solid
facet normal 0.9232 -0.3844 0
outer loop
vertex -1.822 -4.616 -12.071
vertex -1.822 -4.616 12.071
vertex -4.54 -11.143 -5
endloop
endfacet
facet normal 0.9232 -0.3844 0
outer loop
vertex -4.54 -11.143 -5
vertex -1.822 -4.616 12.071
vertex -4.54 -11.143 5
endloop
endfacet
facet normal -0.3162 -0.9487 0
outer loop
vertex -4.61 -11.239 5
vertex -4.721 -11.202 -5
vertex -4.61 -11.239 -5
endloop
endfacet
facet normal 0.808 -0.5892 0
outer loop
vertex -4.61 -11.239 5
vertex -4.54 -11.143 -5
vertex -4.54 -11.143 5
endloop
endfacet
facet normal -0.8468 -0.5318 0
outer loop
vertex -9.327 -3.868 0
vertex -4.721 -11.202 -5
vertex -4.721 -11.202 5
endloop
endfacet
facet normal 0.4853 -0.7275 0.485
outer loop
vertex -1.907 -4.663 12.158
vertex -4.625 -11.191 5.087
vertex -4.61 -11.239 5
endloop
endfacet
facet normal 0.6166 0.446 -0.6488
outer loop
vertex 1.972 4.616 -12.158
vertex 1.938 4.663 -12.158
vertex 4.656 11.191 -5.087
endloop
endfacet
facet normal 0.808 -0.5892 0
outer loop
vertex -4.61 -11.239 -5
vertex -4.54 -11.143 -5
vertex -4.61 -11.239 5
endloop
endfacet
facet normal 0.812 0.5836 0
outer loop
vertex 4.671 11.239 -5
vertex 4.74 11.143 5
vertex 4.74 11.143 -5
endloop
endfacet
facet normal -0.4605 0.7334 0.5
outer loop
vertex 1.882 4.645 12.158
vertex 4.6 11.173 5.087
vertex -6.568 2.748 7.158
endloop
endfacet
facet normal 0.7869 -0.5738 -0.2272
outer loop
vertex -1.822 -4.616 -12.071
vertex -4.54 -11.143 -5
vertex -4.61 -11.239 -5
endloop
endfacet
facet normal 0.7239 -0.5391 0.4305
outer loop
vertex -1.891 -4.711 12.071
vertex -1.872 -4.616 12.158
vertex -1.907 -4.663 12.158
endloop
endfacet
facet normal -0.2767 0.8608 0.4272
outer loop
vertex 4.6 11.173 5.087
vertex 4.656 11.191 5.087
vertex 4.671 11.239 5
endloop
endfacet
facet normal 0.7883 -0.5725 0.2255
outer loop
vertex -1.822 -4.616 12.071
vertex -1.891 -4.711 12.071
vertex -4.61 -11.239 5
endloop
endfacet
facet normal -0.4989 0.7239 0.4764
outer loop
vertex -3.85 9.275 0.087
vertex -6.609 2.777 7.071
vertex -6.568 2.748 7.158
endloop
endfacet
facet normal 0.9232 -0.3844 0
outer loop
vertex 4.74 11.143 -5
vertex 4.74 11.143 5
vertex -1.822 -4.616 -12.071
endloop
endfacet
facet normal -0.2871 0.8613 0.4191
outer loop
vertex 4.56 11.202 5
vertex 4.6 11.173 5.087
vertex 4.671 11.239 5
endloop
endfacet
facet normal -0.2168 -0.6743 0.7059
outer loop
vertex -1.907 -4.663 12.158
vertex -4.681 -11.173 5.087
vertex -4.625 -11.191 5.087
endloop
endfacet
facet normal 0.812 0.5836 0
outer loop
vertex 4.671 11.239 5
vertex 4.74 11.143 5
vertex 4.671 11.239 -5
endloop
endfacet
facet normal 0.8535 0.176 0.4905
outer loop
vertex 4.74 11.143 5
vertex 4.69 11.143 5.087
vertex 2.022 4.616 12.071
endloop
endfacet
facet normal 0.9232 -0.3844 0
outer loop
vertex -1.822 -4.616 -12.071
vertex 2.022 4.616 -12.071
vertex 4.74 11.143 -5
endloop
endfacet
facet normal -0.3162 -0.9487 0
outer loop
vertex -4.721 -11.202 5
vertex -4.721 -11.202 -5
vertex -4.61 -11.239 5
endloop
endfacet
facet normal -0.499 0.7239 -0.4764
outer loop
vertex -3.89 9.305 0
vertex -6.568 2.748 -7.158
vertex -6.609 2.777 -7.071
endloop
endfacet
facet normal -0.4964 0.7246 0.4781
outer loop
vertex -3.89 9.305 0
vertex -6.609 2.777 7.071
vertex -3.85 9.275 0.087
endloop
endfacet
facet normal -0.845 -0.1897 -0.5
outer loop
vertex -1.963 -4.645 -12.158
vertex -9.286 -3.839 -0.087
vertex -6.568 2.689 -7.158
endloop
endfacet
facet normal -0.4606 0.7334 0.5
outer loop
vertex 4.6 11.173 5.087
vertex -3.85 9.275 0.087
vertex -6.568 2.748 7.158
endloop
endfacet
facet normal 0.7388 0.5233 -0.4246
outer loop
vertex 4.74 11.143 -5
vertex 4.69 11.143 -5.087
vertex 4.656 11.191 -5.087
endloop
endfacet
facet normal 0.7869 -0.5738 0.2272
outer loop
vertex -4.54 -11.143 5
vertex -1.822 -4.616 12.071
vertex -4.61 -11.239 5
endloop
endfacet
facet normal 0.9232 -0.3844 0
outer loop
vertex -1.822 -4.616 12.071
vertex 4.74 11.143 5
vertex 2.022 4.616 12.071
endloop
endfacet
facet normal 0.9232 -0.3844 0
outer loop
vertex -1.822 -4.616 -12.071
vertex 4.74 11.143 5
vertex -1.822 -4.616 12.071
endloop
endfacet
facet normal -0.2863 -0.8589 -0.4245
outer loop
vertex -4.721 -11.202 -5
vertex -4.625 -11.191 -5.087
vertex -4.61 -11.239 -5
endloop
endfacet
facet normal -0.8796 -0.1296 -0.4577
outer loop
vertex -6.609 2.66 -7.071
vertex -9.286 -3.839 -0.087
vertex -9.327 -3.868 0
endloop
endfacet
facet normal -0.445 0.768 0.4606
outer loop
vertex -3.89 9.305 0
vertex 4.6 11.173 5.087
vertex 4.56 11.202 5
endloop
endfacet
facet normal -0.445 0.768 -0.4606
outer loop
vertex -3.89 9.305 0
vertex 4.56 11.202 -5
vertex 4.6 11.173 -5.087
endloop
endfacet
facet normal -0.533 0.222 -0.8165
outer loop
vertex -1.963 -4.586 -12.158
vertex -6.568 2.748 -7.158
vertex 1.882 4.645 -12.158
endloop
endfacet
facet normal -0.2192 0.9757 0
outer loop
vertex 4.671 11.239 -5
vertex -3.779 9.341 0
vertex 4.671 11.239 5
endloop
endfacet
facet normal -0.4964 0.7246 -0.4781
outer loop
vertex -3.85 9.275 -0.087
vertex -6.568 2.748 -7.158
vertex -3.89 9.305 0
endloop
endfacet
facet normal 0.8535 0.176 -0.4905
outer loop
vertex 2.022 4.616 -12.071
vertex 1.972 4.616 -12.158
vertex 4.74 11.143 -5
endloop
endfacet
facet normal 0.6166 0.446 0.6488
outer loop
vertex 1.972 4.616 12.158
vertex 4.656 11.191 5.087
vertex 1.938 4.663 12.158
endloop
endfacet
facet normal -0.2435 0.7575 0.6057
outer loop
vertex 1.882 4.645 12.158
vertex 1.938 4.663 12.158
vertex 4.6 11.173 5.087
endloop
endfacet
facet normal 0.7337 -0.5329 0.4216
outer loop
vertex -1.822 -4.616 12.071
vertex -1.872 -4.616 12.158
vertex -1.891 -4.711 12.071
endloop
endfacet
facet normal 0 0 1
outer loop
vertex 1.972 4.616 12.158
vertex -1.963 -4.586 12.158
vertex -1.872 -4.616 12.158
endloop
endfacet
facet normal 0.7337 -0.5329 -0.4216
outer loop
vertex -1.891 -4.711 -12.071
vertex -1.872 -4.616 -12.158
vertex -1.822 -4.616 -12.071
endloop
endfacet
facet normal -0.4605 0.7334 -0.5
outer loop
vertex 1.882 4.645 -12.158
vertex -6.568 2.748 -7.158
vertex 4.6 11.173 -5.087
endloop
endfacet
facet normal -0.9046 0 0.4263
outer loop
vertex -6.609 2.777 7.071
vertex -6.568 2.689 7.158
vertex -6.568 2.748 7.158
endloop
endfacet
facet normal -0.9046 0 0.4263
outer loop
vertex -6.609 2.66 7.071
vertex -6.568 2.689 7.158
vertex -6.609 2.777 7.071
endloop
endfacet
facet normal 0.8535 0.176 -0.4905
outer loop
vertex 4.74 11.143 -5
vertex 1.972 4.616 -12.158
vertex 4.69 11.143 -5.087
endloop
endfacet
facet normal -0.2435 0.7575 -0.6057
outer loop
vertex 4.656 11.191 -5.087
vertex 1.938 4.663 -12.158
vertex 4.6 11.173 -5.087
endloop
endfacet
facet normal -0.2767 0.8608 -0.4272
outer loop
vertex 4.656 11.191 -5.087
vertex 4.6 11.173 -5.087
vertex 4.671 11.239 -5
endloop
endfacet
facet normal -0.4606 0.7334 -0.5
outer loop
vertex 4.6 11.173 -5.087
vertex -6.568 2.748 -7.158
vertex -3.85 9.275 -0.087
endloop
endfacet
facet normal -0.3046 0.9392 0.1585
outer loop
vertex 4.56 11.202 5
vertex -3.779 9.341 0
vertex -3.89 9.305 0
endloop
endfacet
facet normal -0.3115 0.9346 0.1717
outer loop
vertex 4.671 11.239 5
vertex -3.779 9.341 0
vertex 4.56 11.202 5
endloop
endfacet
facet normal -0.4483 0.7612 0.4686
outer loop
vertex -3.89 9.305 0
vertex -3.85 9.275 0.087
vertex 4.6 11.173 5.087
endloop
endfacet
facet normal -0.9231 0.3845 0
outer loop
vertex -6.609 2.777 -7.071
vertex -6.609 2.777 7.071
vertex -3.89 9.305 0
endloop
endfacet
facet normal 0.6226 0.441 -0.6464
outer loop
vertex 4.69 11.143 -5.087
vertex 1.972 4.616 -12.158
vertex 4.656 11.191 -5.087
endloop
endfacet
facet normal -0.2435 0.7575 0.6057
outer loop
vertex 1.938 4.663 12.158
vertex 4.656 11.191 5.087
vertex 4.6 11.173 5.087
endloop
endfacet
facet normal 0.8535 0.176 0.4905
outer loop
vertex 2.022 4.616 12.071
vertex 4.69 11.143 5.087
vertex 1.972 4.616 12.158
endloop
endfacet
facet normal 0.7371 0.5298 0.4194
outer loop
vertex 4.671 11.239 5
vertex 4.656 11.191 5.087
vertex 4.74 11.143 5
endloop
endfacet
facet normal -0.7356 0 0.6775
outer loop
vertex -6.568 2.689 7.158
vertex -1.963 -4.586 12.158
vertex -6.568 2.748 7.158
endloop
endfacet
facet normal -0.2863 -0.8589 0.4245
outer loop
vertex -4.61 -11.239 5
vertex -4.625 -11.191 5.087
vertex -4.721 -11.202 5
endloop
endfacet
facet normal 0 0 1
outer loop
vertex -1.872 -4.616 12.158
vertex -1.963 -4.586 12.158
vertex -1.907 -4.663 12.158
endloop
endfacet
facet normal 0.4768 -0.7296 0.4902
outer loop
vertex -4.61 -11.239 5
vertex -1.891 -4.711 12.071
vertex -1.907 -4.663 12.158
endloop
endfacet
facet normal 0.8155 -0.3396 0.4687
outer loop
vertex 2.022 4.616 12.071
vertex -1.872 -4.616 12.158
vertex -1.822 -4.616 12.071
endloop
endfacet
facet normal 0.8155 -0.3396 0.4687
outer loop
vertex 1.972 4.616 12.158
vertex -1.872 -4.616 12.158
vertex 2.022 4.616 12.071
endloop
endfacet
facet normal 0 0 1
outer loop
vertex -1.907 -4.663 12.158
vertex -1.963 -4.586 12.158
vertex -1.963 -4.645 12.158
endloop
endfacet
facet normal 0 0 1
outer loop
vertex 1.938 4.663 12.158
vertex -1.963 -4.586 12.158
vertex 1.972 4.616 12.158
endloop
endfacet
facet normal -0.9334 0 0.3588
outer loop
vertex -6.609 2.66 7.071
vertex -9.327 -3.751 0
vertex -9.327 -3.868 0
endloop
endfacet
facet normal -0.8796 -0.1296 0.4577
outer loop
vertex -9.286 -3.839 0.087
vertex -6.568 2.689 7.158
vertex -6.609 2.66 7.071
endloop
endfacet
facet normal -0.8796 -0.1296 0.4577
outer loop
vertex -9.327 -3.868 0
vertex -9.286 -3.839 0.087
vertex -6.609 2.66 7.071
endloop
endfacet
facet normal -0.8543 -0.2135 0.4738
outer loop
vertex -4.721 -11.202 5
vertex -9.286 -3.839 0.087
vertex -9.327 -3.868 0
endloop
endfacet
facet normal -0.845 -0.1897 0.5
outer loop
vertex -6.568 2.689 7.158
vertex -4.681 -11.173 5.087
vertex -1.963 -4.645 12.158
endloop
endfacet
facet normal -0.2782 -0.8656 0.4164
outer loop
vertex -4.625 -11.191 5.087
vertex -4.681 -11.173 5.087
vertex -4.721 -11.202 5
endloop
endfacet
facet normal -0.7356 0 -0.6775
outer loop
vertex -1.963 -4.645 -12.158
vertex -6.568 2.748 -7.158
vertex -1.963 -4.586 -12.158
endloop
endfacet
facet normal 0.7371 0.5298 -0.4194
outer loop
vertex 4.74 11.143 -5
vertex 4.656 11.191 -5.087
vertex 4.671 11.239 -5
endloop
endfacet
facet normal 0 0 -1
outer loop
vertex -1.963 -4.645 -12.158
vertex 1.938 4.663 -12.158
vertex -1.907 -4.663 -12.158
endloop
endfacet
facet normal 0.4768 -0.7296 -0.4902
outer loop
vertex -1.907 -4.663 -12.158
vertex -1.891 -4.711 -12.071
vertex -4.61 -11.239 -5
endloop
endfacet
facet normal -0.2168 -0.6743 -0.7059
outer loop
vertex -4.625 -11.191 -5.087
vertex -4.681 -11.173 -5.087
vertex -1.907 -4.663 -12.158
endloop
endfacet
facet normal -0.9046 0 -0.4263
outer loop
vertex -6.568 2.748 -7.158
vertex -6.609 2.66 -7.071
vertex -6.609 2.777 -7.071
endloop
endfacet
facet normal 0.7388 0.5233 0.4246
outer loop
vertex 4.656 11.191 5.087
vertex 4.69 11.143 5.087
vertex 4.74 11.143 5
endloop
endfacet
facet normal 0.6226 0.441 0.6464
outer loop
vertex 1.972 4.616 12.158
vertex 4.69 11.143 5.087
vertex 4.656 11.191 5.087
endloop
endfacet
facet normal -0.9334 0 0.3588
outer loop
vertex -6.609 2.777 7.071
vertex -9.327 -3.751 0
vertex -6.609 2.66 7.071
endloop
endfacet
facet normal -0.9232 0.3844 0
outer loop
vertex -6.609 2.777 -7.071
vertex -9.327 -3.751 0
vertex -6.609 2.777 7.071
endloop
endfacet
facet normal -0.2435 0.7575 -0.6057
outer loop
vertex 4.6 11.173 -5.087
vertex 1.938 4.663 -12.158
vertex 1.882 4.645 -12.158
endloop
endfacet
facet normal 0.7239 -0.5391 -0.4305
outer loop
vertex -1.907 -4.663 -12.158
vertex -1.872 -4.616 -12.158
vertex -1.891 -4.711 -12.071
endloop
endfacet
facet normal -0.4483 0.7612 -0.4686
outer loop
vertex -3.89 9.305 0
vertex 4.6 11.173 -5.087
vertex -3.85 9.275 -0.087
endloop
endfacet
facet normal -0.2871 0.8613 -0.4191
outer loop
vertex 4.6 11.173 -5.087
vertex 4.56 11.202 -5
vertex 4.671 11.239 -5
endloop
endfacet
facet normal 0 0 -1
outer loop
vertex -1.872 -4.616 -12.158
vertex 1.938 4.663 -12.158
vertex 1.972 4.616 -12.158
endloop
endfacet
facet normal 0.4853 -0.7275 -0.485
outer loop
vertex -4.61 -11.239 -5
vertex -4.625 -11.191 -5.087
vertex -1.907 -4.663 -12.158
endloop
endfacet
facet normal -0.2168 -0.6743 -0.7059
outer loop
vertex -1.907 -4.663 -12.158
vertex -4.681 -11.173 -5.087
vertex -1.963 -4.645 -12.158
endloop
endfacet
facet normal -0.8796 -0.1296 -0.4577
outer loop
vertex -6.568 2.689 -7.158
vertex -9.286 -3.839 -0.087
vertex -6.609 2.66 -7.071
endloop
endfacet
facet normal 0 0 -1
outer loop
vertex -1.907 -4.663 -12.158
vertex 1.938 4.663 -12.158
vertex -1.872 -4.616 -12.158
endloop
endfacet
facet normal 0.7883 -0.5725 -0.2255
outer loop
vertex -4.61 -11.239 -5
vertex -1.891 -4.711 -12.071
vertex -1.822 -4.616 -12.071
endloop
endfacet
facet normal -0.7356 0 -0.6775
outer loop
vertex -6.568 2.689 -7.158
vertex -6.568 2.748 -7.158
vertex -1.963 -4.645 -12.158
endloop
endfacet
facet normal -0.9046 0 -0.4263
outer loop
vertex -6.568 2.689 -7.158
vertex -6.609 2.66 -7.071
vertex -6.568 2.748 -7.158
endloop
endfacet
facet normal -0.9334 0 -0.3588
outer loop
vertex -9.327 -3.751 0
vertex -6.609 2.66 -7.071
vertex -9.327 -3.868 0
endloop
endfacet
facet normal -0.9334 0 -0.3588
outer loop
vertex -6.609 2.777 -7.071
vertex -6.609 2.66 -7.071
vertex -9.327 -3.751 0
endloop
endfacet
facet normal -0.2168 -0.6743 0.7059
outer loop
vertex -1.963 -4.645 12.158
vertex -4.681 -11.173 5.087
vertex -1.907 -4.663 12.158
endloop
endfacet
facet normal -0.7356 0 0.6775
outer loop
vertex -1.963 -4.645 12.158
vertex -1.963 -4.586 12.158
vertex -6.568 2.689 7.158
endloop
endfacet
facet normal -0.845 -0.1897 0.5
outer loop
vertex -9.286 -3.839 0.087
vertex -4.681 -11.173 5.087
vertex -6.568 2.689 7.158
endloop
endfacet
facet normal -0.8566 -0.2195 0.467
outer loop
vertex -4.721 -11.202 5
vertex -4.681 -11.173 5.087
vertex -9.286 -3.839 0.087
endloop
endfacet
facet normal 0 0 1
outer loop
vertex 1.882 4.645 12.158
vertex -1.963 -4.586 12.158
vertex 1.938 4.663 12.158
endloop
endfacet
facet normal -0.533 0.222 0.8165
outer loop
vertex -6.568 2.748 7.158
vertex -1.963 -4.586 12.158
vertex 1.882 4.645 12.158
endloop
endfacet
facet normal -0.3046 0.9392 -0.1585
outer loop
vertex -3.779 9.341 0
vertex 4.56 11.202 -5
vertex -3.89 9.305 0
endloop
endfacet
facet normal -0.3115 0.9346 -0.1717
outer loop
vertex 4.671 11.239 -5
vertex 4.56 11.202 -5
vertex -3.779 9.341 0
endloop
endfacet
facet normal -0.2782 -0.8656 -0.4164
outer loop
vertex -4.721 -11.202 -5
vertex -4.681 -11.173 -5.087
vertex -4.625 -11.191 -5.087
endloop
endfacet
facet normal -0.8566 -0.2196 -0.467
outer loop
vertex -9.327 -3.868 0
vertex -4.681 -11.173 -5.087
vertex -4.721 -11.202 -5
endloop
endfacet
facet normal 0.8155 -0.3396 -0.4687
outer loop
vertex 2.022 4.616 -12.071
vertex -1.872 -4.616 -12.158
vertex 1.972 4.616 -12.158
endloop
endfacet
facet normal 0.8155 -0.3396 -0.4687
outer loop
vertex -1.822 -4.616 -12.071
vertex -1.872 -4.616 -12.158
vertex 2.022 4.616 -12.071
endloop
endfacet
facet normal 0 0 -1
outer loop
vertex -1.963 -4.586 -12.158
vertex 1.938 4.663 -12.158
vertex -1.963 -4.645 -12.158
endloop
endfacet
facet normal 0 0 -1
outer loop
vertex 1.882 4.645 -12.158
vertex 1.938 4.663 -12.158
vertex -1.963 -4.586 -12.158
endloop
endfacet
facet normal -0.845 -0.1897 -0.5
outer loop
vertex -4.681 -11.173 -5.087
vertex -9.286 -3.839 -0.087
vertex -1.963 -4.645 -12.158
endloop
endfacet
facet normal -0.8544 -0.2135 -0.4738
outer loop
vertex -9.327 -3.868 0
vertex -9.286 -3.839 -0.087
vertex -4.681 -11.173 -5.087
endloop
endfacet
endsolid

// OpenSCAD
// Auto-generated OpenSCAD file

    inner_points = 10*[[0.4640413965551187, 1.1143484030902198, 0.49999999999999933], [0.19221223995568226, 0.46157822176877006, 1.2071067811865472], [-0.19221223995568226, -0.46157822176877006, -1.2071067811865472], [-0.4640413965551187, -1.1143484030902198, -0.49999999999999933], [0.4640413965551183, 1.1143484030902195, -0.5000000000000007], [-0.19221223995568118, -0.46157822176876906, 1.2071067811865477], [0.19221223995568118, 0.46157822176876906, -1.2071067811865477], [-0.4640413965551183, -1.1143484030902195, 0.5000000000000007], [-0.3809410247220134, 0.9245993379208868, -1.6653345369377348e-16], [-0.6527701813214497, 0.2718291565994371, 0.7071067811865477], [-0.6527701813214505, 0.2718291565994365, -0.7071067811865472], [-0.9245993379208868, -0.38094102472201324, 5.551115123125783e-16]];

    outer_points = 10*[[1.2035201993020799, 0.49960866706726725, 0.09506361475190225], [1.1997598001990037, -0.49960866706726725, 0.134441001202246], [-1.1997598001990037, 0.49960866706726725, -0.134441001202246], [-1.2035201993020799, -0.49960866706726725, -0.09506361475190225], [0.5022747882439678, 1.2061620199129408, -7.479318947997693e-07], [0.4931963817293862, -1.2061620199129408, 0.09506467248733161], [-0.4931963817293862, 1.2061620199129408, -0.09506467248733161], [-0.5022747882439678, -1.2061620199129408, 7.479318947997693e-07], [0.4324480499089029, 0.5275793585592033, 0.7311967618584252], [0.42868765080582694, -0.47163797557533116, 0.770574148308769], [-0.5630231200644511, 0.5275793585592033, 0.6361328373029884], [-0.566783519167527, -0.47163797557533116, 0.6755102237533323]];

    // Convex hull for inner set (I)
    module inner_hull() {
        hull() {
            for (p = inner_points) {
                translate(p) sphere(r=0.1);
            }
        }
    }

    // Convex hull for outer set (O) minus inner hull (O \ I)
    module outer_minus_inner() {
        difference() {
            hull() {
                for (p = outer_points) {
                    translate(p) sphere(r=0.1);
                }
            }
            inner_hull(); // Subtract inner hull
        }
    }

    // Convex hull for outer set (O) minus all translated inner hulls
    module outer_minus_AllTranslationInner() {
        difference() {
            hull() {
                for (p = outer_points) {
                    translate(p) sphere(r=0.1);
                }
            }
            hull() {
                translate([0,0,50]) inner_hull();
                translate([0,0,-50]) inner_hull();
            }; // Subtract translated inner hulls
        }
    }

    // Difference between outer_minus_inner and outer_minus_AllTranslationInner
    module outer_minus_inner_diff() {
        difference() {
            // Outer minus inner
            difference() {
                hull() {
                    for (p = outer_points) {
                        translate(p) sphere(r=0.1);
                    }
                }
                inner_hull();
            }

            // Subtract Outer minus AllTranslationInner
            difference() {
                hull() {
                    for (p = outer_points) {
                        translate(p) sphere(r=0.1);
                    }
                }
                hull() {
                    translate([0,0,50]) inner_hull();
                    translate([0,0,-50]) inner_hull();
                };
            }
        }
    }

    // Rendering all with colors applied
    color([1, 0, 0, 0.5]) inner_hull(); // Transparent red
    
